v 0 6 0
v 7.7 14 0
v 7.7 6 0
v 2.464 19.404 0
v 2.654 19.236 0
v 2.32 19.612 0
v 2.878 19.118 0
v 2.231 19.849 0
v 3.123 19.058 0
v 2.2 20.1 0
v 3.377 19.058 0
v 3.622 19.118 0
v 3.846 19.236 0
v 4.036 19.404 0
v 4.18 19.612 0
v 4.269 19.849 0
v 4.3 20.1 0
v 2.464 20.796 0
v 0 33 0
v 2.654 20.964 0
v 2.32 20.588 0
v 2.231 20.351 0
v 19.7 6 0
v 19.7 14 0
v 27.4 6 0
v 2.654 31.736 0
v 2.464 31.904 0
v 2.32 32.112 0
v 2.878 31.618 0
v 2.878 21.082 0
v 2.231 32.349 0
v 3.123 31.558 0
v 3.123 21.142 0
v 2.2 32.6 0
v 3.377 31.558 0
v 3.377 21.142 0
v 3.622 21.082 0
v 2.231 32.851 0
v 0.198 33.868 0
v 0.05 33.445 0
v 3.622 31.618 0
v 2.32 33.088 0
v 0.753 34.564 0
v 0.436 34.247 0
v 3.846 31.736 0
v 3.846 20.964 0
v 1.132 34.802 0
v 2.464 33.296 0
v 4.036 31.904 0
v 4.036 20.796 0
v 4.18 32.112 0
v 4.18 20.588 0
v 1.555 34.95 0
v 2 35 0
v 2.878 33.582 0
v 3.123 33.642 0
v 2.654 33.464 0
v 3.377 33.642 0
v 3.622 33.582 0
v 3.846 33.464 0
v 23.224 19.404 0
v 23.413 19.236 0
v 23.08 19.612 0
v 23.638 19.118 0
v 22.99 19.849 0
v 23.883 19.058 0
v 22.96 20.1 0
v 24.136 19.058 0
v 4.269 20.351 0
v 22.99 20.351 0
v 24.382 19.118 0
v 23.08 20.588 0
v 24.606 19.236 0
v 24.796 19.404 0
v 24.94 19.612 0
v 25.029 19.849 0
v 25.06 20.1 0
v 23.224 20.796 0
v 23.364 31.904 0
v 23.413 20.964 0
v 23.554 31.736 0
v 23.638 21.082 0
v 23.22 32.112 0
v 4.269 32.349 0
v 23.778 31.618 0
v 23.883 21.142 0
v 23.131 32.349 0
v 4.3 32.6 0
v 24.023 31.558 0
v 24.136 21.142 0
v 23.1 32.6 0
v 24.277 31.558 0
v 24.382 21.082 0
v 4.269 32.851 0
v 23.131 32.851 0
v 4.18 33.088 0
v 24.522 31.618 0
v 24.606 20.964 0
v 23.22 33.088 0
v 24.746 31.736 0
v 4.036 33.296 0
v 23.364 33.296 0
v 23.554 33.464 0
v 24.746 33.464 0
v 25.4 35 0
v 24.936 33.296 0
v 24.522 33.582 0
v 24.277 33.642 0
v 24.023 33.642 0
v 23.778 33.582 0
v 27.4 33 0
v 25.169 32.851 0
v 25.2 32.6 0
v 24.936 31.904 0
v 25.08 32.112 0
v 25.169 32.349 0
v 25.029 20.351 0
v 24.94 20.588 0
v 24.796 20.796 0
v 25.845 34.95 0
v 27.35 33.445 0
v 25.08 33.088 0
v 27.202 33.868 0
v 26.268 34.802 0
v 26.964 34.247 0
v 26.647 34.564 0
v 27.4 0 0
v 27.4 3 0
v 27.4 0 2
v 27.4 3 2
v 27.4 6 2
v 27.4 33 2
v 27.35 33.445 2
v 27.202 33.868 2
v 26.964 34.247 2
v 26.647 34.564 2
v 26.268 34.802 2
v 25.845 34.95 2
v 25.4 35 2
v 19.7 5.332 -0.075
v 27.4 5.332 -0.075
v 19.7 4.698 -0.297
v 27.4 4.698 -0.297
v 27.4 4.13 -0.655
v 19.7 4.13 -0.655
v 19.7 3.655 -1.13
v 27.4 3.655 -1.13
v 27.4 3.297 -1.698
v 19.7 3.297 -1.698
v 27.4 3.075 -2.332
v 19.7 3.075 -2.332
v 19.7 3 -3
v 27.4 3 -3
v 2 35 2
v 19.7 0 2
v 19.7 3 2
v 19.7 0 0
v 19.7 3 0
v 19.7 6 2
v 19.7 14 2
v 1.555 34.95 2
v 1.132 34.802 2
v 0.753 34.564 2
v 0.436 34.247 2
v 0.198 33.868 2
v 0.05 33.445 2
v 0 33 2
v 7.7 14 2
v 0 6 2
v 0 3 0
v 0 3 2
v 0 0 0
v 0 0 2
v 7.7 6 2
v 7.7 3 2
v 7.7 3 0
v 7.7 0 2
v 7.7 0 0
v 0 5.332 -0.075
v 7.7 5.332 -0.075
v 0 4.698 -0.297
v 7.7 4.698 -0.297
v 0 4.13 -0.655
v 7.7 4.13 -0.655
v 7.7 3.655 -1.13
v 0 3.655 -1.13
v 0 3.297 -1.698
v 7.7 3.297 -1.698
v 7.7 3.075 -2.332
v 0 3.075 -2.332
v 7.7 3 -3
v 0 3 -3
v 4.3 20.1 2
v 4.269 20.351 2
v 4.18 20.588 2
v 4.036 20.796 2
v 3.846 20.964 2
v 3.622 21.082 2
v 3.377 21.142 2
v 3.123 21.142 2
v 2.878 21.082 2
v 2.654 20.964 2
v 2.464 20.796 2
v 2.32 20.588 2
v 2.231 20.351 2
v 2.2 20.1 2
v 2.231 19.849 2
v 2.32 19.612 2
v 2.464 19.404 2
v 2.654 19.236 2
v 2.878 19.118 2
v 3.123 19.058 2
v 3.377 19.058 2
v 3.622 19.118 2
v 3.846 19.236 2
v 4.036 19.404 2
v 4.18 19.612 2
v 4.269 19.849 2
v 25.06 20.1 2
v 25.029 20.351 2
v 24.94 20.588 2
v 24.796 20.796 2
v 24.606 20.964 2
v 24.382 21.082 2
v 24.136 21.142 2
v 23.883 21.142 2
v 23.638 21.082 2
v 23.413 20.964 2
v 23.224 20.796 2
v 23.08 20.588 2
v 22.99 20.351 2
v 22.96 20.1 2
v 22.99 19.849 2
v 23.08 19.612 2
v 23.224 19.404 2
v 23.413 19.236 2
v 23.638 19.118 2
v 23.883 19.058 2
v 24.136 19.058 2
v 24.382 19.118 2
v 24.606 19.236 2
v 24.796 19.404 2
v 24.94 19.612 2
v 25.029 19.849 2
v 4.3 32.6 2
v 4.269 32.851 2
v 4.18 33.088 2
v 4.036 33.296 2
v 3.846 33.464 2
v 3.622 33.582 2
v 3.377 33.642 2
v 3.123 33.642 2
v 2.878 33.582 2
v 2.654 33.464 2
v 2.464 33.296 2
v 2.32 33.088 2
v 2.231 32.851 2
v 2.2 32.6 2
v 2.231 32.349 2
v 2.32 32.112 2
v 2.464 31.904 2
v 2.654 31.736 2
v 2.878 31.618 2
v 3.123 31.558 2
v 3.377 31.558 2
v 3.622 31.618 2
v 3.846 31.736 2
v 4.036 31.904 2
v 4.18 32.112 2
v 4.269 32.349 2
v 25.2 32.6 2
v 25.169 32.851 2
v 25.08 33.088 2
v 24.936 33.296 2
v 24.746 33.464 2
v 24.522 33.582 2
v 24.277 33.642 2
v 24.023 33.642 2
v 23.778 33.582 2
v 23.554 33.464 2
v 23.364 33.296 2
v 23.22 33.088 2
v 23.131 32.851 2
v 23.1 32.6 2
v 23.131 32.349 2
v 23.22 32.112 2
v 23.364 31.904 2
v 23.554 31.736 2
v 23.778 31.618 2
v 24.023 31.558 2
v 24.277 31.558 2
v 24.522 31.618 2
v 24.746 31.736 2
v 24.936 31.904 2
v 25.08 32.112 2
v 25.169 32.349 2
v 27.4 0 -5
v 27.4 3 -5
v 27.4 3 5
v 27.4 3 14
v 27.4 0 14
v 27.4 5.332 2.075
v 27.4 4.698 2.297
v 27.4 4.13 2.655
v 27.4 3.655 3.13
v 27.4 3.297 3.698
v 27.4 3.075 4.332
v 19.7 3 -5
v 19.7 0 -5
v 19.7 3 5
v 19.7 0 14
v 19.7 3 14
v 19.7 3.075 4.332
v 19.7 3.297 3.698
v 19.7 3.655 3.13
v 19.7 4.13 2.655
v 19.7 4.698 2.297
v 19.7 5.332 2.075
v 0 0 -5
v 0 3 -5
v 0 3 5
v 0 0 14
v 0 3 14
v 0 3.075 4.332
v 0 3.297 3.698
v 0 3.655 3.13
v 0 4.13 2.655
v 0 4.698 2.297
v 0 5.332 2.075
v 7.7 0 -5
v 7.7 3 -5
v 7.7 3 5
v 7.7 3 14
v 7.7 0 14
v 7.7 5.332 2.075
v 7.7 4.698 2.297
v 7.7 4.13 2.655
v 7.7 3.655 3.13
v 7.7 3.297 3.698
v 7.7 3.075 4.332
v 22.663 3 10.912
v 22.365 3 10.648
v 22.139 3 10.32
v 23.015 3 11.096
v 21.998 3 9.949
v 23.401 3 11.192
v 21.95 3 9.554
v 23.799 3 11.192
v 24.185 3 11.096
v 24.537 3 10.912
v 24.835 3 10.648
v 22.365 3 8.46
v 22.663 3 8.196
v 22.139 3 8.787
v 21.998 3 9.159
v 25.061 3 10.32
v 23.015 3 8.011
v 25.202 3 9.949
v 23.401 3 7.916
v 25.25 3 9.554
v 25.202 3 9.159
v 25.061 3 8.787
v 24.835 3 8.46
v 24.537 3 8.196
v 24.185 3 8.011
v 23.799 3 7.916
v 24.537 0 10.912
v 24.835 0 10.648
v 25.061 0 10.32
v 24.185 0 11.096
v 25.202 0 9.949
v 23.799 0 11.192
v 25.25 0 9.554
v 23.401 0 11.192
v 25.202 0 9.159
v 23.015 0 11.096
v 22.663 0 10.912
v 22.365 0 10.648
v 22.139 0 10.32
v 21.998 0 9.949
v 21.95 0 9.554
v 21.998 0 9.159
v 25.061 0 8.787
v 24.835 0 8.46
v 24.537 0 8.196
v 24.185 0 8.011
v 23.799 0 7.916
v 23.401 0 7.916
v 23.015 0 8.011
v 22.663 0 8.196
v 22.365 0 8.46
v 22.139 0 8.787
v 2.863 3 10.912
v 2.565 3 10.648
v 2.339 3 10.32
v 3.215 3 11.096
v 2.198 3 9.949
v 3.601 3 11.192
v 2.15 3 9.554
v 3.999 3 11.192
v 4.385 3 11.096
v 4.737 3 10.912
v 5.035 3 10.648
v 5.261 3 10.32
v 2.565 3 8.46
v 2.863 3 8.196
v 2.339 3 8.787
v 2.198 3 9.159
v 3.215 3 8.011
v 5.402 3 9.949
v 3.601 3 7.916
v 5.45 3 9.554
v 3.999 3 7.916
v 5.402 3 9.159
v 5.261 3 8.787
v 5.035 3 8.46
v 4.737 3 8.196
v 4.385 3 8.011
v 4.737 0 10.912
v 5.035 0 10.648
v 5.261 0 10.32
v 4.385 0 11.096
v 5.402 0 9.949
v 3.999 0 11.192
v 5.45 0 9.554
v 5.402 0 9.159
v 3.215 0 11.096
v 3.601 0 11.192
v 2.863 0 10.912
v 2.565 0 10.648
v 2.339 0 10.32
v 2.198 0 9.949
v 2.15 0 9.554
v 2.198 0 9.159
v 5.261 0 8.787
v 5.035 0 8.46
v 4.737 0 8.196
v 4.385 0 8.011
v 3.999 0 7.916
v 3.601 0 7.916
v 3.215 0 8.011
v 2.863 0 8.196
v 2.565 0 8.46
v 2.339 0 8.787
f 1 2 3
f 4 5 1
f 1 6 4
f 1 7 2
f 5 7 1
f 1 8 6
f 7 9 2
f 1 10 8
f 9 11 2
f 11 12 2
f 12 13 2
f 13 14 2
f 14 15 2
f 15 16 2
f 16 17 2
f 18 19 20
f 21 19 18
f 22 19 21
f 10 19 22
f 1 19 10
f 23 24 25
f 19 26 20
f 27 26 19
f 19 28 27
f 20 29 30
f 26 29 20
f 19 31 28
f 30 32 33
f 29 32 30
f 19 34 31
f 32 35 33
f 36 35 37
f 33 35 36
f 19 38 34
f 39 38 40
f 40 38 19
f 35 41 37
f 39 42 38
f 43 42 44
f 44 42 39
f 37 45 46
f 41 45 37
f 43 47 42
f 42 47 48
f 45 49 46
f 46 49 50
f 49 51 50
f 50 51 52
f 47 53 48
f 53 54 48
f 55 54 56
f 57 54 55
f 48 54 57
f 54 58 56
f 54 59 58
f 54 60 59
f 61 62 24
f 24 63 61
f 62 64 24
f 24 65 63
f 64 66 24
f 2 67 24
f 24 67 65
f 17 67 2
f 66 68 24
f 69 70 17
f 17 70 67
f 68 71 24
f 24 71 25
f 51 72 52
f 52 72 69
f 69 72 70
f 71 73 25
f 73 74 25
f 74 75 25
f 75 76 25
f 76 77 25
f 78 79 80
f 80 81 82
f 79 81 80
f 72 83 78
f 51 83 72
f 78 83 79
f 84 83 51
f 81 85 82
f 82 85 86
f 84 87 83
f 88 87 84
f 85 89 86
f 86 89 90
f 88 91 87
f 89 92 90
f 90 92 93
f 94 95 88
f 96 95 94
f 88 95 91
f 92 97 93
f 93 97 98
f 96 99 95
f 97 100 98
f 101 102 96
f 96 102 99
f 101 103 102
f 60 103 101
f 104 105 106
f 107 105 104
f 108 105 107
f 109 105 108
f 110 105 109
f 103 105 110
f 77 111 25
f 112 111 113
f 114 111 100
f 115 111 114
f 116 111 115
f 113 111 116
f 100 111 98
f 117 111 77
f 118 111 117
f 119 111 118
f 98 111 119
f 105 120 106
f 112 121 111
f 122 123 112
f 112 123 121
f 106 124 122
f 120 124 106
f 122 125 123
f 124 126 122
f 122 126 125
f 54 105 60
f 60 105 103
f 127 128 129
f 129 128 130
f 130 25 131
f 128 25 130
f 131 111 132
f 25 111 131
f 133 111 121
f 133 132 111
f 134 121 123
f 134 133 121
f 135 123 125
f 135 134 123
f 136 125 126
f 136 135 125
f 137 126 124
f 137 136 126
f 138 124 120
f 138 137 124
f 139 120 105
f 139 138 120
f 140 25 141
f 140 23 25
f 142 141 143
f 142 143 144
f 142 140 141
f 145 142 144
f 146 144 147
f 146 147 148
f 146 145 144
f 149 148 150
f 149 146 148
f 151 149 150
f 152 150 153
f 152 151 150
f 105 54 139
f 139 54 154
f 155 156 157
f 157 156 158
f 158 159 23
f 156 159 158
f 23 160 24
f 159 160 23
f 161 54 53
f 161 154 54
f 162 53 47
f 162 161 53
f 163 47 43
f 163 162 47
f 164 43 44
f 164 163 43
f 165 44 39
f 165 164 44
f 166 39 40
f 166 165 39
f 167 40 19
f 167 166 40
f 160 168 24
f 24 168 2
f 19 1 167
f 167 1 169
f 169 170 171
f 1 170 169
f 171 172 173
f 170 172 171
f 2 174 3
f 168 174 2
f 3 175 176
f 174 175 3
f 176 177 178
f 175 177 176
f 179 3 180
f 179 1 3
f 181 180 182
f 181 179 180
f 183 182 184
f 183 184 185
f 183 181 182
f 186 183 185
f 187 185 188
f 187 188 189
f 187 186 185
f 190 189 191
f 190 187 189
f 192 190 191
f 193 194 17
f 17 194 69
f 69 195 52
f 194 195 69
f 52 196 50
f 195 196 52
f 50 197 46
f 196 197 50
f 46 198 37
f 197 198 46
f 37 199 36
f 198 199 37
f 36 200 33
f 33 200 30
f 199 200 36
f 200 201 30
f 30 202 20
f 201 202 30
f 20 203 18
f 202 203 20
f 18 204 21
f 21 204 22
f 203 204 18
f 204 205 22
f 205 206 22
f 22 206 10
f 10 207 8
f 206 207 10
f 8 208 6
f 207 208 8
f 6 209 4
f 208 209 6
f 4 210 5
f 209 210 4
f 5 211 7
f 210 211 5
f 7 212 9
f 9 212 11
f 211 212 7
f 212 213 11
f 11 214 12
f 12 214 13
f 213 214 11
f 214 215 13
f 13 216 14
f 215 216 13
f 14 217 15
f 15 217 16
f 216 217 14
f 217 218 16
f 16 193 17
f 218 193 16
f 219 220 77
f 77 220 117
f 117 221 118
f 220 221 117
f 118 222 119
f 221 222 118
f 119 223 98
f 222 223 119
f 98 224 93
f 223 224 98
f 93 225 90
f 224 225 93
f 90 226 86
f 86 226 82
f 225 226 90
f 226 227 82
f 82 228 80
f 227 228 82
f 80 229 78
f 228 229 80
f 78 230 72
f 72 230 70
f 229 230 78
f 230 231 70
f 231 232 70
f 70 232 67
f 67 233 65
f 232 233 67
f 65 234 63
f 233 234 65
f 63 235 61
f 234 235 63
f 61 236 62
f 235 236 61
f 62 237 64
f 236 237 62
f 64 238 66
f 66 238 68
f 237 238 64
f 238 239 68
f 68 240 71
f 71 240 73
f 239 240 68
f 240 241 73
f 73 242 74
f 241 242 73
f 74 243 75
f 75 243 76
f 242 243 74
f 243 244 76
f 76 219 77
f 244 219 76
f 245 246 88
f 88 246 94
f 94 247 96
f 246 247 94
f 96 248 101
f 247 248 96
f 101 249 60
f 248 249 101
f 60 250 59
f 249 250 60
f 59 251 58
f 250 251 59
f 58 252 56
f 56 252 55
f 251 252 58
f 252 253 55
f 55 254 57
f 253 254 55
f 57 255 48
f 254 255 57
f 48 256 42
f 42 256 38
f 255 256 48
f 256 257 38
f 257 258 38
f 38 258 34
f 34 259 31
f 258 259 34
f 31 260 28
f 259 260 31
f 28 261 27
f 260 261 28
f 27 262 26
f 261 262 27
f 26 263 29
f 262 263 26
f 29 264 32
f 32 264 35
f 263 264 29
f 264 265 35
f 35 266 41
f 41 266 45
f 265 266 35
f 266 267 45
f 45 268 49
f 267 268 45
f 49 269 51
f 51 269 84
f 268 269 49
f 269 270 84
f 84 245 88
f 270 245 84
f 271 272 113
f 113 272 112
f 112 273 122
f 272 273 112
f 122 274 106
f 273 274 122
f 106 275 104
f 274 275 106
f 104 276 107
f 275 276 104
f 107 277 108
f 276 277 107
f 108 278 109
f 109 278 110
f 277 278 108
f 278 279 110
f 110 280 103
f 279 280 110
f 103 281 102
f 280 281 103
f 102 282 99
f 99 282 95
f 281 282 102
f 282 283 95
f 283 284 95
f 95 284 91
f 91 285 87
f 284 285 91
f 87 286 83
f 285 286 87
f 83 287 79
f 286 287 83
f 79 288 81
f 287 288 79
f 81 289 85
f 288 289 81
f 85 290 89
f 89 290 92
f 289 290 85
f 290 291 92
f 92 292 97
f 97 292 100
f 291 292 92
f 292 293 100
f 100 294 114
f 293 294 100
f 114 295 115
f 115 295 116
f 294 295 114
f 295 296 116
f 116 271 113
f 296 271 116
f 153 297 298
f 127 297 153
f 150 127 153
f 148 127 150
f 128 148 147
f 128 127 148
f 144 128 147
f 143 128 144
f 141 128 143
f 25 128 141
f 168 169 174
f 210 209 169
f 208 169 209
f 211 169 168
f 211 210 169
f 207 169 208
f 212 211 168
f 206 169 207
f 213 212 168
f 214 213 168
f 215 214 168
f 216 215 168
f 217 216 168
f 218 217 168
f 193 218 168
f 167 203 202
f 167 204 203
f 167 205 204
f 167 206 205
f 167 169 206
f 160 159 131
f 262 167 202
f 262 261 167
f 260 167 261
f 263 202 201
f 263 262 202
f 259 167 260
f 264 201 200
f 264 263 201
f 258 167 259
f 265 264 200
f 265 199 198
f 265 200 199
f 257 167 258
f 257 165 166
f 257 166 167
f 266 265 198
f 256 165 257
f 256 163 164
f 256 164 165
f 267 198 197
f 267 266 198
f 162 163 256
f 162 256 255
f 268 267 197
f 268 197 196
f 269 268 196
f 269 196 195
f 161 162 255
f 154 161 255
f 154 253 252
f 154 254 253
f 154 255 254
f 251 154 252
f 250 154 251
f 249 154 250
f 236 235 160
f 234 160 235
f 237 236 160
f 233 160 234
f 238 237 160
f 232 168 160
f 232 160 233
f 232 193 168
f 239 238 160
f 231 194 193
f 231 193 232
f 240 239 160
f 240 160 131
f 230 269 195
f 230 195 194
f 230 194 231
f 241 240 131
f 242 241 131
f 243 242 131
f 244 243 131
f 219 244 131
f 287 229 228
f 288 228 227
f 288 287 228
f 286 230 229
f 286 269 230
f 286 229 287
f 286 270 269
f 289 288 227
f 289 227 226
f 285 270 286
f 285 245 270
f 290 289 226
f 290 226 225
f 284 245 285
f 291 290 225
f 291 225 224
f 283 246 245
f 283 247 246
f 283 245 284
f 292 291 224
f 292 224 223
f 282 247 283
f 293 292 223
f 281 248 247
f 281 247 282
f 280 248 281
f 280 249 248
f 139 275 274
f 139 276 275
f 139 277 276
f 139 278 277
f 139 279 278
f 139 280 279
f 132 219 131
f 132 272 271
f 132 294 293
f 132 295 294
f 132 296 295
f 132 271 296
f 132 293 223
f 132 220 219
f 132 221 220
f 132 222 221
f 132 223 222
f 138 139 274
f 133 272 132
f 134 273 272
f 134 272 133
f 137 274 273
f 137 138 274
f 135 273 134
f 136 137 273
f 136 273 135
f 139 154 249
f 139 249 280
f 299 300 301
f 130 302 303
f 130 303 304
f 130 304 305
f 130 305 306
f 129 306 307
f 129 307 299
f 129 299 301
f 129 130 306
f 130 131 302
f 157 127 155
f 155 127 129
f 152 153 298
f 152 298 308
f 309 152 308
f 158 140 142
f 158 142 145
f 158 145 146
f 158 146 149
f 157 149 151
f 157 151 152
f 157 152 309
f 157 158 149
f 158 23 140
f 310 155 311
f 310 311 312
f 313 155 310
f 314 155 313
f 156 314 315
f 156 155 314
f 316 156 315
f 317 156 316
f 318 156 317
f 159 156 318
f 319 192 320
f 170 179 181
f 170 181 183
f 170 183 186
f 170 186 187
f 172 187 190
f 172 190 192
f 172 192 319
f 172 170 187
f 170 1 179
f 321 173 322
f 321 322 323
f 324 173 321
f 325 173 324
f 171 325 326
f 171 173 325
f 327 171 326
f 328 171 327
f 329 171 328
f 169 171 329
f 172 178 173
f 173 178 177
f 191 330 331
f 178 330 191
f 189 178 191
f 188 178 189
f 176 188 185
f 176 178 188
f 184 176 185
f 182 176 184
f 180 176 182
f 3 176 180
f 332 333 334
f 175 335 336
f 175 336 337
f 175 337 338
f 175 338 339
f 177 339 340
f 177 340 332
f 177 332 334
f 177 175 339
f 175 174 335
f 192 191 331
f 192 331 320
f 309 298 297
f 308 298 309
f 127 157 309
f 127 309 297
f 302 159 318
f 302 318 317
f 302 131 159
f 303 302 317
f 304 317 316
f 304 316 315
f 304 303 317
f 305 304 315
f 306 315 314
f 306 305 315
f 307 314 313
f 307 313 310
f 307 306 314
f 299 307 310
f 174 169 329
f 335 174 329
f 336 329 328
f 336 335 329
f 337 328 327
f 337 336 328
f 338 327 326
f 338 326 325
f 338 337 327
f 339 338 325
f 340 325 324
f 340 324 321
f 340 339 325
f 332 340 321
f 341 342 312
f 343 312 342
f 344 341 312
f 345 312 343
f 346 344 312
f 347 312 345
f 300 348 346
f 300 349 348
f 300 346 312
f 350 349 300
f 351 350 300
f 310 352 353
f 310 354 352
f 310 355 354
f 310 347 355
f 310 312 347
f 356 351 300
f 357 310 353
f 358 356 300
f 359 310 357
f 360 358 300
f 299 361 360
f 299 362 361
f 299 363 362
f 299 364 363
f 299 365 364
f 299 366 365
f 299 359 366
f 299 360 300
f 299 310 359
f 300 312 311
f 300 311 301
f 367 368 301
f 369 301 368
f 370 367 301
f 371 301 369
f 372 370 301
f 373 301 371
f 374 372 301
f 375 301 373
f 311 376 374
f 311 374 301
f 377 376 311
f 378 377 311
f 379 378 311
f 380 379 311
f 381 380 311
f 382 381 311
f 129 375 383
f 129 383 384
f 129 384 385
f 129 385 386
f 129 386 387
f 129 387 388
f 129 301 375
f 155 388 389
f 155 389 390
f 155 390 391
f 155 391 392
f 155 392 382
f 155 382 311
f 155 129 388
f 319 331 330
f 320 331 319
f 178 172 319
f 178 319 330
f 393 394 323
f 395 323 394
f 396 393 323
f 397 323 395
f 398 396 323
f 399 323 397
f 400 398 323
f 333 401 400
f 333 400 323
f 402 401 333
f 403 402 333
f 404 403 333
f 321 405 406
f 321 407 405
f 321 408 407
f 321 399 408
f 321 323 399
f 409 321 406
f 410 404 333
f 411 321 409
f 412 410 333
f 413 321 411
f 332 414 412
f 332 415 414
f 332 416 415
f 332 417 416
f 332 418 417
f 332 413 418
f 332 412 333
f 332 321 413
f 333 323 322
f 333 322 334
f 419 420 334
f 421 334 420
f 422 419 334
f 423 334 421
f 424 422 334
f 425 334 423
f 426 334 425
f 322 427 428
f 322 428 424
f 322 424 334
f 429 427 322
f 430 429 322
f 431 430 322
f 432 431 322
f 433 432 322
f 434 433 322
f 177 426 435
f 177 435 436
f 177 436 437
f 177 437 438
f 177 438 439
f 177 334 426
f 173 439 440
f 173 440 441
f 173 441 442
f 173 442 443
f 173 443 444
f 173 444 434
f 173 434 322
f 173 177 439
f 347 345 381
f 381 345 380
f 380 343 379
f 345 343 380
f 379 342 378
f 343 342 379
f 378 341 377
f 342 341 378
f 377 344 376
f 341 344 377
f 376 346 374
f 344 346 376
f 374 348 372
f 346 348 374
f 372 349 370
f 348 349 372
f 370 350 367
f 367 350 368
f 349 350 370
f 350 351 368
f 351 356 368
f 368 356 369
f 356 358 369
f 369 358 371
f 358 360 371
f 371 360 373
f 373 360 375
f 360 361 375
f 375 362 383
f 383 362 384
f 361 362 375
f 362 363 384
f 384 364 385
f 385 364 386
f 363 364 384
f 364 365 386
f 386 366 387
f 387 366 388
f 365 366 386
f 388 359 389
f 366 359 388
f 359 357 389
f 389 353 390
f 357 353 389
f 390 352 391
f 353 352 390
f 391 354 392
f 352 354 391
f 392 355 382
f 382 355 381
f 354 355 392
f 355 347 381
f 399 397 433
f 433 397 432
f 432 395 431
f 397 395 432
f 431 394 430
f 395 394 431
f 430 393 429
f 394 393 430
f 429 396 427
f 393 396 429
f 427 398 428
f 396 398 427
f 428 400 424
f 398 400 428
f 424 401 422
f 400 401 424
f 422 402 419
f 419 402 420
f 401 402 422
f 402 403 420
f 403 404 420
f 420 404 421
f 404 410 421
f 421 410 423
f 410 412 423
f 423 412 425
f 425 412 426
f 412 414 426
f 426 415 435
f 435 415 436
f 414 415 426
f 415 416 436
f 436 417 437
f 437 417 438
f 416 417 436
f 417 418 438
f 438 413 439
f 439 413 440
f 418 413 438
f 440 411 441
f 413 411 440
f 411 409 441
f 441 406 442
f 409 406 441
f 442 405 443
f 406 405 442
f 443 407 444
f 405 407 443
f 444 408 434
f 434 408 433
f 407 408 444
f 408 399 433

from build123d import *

# Parameters (mm, degrees)
SKETCH_W        = 27.4
SKETCH_H        = 35
PAD_DEPTH       = 2
SKETCH001_W     = 12
SKETCH001_H     = 14
POCKET_DEPTH    = 2
SKETCH002_W     = 7.7
SKETCH002_H     = 3
PAD001_DEPTH    = 12
FILLET_R        = 3
SKETCH003_W     = 7.7
SKETCH003_H     = 3
PAD002_DEPTH    = 5
FILLET001_R     = 3
SKETCH004_R     = 1.05
POCKET001_DEPTH = 2
SKETCH005_R     = 1.65
POCKET002_DEPTH = 3
FILLET002_R     = 2


with BuildPart() as part:
    # Sketch → Pad (new body)
    with BuildSketch(Plane.XY):
        with Locations((13.7, 17.5)):
            Rectangle(SKETCH_W, SKETCH_H)
    extrude(amount=PAD_DEPTH)

    # Sketch001 (on Face6 of Pad) → Pocket (cut)
    with BuildSketch(Plane.XY.offset(2)):
        with Locations((13.7, 7)):
            Rectangle(SKETCH001_W, SKETCH001_H)
    extrude(amount=-POCKET_DEPTH, mode=Mode.SUBTRACT)

    # Sketch002 (on Face4 of Pocket) → Pad001 (join)
    with BuildSketch(Plane.XY.offset(2)):
        with Locations((3.85, 1.5)):
            Rectangle(SKETCH002_W, SKETCH002_H)
        with Locations((23.55, 1.5)):
            Rectangle(SKETCH002_W, SKETCH002_H)
    extrude(amount=PAD001_DEPTH)

    # Fillet
    fillet_edges = [part.edges().sort_by_distance(p)[0] for p in [
        (3.85, 3, 2),
        (23.55, 3, 2),
    ]]
    fillet(fillet_edges, radius=FILLET_R)

    # Sketch003 (on Face5 of Fillet) → Pad002 (join)
    with BuildSketch(Plane(origin=(0, 0, 0), x_dir=(1, 0, 0), z_dir=(0, 0, -1))):
        with Locations((3.85, -1.5)):
            Rectangle(SKETCH003_W, SKETCH003_H)
        with Locations((23.55, -1.5)):
            Rectangle(SKETCH003_W, SKETCH003_H)
    extrude(amount=PAD002_DEPTH)

    # Fillet001
    fillet001_edges = [part.edges().sort_by_distance(p)[0] for p in [
        (3.85, 3, 0),
        (23.55, 3, 0),
    ]]
    fillet(fillet001_edges, radius=FILLET001_R)

    # Sketch004 (on Face5 of Fillet001) → Pocket001 (cut)
    with BuildSketch(Plane.XY.offset(2)):
        with Locations((3.25, 32.6)):
            Circle(SKETCH004_R)
        with Locations((3.25, 20.1)):
            Circle(SKETCH004_R)
        with Locations((24.15, 32.6)):
            Circle(SKETCH004_R)
        with Locations((24.009843, 20.1)):
            Circle(SKETCH004_R)
    extrude(amount=-POCKET001_DEPTH, mode=Mode.SUBTRACT)

    # Sketch005 (on Face24 of Pocket001) → Pocket002 (cut)
    with BuildSketch(Plane(origin=(0, 3, 0), x_dir=(-1, 0, 0), z_dir=(0, 1, 0))):
        with Locations((-3.8, 9.553689)):
            Circle(SKETCH005_R)
        with Locations((-23.6, 9.553689)):
            Circle(SKETCH005_R)
    extrude(amount=-POCKET002_DEPTH, mode=Mode.SUBTRACT)

    # Fillet002
    fillet002_edges = [part.edges().sort_by_distance(p)[0] for p in [
        (0, 35, 1),
        (27.4, 35, 1),
    ]]
    fillet(fillet002_edges, radius=FILLET002_R)


solid = part.part
